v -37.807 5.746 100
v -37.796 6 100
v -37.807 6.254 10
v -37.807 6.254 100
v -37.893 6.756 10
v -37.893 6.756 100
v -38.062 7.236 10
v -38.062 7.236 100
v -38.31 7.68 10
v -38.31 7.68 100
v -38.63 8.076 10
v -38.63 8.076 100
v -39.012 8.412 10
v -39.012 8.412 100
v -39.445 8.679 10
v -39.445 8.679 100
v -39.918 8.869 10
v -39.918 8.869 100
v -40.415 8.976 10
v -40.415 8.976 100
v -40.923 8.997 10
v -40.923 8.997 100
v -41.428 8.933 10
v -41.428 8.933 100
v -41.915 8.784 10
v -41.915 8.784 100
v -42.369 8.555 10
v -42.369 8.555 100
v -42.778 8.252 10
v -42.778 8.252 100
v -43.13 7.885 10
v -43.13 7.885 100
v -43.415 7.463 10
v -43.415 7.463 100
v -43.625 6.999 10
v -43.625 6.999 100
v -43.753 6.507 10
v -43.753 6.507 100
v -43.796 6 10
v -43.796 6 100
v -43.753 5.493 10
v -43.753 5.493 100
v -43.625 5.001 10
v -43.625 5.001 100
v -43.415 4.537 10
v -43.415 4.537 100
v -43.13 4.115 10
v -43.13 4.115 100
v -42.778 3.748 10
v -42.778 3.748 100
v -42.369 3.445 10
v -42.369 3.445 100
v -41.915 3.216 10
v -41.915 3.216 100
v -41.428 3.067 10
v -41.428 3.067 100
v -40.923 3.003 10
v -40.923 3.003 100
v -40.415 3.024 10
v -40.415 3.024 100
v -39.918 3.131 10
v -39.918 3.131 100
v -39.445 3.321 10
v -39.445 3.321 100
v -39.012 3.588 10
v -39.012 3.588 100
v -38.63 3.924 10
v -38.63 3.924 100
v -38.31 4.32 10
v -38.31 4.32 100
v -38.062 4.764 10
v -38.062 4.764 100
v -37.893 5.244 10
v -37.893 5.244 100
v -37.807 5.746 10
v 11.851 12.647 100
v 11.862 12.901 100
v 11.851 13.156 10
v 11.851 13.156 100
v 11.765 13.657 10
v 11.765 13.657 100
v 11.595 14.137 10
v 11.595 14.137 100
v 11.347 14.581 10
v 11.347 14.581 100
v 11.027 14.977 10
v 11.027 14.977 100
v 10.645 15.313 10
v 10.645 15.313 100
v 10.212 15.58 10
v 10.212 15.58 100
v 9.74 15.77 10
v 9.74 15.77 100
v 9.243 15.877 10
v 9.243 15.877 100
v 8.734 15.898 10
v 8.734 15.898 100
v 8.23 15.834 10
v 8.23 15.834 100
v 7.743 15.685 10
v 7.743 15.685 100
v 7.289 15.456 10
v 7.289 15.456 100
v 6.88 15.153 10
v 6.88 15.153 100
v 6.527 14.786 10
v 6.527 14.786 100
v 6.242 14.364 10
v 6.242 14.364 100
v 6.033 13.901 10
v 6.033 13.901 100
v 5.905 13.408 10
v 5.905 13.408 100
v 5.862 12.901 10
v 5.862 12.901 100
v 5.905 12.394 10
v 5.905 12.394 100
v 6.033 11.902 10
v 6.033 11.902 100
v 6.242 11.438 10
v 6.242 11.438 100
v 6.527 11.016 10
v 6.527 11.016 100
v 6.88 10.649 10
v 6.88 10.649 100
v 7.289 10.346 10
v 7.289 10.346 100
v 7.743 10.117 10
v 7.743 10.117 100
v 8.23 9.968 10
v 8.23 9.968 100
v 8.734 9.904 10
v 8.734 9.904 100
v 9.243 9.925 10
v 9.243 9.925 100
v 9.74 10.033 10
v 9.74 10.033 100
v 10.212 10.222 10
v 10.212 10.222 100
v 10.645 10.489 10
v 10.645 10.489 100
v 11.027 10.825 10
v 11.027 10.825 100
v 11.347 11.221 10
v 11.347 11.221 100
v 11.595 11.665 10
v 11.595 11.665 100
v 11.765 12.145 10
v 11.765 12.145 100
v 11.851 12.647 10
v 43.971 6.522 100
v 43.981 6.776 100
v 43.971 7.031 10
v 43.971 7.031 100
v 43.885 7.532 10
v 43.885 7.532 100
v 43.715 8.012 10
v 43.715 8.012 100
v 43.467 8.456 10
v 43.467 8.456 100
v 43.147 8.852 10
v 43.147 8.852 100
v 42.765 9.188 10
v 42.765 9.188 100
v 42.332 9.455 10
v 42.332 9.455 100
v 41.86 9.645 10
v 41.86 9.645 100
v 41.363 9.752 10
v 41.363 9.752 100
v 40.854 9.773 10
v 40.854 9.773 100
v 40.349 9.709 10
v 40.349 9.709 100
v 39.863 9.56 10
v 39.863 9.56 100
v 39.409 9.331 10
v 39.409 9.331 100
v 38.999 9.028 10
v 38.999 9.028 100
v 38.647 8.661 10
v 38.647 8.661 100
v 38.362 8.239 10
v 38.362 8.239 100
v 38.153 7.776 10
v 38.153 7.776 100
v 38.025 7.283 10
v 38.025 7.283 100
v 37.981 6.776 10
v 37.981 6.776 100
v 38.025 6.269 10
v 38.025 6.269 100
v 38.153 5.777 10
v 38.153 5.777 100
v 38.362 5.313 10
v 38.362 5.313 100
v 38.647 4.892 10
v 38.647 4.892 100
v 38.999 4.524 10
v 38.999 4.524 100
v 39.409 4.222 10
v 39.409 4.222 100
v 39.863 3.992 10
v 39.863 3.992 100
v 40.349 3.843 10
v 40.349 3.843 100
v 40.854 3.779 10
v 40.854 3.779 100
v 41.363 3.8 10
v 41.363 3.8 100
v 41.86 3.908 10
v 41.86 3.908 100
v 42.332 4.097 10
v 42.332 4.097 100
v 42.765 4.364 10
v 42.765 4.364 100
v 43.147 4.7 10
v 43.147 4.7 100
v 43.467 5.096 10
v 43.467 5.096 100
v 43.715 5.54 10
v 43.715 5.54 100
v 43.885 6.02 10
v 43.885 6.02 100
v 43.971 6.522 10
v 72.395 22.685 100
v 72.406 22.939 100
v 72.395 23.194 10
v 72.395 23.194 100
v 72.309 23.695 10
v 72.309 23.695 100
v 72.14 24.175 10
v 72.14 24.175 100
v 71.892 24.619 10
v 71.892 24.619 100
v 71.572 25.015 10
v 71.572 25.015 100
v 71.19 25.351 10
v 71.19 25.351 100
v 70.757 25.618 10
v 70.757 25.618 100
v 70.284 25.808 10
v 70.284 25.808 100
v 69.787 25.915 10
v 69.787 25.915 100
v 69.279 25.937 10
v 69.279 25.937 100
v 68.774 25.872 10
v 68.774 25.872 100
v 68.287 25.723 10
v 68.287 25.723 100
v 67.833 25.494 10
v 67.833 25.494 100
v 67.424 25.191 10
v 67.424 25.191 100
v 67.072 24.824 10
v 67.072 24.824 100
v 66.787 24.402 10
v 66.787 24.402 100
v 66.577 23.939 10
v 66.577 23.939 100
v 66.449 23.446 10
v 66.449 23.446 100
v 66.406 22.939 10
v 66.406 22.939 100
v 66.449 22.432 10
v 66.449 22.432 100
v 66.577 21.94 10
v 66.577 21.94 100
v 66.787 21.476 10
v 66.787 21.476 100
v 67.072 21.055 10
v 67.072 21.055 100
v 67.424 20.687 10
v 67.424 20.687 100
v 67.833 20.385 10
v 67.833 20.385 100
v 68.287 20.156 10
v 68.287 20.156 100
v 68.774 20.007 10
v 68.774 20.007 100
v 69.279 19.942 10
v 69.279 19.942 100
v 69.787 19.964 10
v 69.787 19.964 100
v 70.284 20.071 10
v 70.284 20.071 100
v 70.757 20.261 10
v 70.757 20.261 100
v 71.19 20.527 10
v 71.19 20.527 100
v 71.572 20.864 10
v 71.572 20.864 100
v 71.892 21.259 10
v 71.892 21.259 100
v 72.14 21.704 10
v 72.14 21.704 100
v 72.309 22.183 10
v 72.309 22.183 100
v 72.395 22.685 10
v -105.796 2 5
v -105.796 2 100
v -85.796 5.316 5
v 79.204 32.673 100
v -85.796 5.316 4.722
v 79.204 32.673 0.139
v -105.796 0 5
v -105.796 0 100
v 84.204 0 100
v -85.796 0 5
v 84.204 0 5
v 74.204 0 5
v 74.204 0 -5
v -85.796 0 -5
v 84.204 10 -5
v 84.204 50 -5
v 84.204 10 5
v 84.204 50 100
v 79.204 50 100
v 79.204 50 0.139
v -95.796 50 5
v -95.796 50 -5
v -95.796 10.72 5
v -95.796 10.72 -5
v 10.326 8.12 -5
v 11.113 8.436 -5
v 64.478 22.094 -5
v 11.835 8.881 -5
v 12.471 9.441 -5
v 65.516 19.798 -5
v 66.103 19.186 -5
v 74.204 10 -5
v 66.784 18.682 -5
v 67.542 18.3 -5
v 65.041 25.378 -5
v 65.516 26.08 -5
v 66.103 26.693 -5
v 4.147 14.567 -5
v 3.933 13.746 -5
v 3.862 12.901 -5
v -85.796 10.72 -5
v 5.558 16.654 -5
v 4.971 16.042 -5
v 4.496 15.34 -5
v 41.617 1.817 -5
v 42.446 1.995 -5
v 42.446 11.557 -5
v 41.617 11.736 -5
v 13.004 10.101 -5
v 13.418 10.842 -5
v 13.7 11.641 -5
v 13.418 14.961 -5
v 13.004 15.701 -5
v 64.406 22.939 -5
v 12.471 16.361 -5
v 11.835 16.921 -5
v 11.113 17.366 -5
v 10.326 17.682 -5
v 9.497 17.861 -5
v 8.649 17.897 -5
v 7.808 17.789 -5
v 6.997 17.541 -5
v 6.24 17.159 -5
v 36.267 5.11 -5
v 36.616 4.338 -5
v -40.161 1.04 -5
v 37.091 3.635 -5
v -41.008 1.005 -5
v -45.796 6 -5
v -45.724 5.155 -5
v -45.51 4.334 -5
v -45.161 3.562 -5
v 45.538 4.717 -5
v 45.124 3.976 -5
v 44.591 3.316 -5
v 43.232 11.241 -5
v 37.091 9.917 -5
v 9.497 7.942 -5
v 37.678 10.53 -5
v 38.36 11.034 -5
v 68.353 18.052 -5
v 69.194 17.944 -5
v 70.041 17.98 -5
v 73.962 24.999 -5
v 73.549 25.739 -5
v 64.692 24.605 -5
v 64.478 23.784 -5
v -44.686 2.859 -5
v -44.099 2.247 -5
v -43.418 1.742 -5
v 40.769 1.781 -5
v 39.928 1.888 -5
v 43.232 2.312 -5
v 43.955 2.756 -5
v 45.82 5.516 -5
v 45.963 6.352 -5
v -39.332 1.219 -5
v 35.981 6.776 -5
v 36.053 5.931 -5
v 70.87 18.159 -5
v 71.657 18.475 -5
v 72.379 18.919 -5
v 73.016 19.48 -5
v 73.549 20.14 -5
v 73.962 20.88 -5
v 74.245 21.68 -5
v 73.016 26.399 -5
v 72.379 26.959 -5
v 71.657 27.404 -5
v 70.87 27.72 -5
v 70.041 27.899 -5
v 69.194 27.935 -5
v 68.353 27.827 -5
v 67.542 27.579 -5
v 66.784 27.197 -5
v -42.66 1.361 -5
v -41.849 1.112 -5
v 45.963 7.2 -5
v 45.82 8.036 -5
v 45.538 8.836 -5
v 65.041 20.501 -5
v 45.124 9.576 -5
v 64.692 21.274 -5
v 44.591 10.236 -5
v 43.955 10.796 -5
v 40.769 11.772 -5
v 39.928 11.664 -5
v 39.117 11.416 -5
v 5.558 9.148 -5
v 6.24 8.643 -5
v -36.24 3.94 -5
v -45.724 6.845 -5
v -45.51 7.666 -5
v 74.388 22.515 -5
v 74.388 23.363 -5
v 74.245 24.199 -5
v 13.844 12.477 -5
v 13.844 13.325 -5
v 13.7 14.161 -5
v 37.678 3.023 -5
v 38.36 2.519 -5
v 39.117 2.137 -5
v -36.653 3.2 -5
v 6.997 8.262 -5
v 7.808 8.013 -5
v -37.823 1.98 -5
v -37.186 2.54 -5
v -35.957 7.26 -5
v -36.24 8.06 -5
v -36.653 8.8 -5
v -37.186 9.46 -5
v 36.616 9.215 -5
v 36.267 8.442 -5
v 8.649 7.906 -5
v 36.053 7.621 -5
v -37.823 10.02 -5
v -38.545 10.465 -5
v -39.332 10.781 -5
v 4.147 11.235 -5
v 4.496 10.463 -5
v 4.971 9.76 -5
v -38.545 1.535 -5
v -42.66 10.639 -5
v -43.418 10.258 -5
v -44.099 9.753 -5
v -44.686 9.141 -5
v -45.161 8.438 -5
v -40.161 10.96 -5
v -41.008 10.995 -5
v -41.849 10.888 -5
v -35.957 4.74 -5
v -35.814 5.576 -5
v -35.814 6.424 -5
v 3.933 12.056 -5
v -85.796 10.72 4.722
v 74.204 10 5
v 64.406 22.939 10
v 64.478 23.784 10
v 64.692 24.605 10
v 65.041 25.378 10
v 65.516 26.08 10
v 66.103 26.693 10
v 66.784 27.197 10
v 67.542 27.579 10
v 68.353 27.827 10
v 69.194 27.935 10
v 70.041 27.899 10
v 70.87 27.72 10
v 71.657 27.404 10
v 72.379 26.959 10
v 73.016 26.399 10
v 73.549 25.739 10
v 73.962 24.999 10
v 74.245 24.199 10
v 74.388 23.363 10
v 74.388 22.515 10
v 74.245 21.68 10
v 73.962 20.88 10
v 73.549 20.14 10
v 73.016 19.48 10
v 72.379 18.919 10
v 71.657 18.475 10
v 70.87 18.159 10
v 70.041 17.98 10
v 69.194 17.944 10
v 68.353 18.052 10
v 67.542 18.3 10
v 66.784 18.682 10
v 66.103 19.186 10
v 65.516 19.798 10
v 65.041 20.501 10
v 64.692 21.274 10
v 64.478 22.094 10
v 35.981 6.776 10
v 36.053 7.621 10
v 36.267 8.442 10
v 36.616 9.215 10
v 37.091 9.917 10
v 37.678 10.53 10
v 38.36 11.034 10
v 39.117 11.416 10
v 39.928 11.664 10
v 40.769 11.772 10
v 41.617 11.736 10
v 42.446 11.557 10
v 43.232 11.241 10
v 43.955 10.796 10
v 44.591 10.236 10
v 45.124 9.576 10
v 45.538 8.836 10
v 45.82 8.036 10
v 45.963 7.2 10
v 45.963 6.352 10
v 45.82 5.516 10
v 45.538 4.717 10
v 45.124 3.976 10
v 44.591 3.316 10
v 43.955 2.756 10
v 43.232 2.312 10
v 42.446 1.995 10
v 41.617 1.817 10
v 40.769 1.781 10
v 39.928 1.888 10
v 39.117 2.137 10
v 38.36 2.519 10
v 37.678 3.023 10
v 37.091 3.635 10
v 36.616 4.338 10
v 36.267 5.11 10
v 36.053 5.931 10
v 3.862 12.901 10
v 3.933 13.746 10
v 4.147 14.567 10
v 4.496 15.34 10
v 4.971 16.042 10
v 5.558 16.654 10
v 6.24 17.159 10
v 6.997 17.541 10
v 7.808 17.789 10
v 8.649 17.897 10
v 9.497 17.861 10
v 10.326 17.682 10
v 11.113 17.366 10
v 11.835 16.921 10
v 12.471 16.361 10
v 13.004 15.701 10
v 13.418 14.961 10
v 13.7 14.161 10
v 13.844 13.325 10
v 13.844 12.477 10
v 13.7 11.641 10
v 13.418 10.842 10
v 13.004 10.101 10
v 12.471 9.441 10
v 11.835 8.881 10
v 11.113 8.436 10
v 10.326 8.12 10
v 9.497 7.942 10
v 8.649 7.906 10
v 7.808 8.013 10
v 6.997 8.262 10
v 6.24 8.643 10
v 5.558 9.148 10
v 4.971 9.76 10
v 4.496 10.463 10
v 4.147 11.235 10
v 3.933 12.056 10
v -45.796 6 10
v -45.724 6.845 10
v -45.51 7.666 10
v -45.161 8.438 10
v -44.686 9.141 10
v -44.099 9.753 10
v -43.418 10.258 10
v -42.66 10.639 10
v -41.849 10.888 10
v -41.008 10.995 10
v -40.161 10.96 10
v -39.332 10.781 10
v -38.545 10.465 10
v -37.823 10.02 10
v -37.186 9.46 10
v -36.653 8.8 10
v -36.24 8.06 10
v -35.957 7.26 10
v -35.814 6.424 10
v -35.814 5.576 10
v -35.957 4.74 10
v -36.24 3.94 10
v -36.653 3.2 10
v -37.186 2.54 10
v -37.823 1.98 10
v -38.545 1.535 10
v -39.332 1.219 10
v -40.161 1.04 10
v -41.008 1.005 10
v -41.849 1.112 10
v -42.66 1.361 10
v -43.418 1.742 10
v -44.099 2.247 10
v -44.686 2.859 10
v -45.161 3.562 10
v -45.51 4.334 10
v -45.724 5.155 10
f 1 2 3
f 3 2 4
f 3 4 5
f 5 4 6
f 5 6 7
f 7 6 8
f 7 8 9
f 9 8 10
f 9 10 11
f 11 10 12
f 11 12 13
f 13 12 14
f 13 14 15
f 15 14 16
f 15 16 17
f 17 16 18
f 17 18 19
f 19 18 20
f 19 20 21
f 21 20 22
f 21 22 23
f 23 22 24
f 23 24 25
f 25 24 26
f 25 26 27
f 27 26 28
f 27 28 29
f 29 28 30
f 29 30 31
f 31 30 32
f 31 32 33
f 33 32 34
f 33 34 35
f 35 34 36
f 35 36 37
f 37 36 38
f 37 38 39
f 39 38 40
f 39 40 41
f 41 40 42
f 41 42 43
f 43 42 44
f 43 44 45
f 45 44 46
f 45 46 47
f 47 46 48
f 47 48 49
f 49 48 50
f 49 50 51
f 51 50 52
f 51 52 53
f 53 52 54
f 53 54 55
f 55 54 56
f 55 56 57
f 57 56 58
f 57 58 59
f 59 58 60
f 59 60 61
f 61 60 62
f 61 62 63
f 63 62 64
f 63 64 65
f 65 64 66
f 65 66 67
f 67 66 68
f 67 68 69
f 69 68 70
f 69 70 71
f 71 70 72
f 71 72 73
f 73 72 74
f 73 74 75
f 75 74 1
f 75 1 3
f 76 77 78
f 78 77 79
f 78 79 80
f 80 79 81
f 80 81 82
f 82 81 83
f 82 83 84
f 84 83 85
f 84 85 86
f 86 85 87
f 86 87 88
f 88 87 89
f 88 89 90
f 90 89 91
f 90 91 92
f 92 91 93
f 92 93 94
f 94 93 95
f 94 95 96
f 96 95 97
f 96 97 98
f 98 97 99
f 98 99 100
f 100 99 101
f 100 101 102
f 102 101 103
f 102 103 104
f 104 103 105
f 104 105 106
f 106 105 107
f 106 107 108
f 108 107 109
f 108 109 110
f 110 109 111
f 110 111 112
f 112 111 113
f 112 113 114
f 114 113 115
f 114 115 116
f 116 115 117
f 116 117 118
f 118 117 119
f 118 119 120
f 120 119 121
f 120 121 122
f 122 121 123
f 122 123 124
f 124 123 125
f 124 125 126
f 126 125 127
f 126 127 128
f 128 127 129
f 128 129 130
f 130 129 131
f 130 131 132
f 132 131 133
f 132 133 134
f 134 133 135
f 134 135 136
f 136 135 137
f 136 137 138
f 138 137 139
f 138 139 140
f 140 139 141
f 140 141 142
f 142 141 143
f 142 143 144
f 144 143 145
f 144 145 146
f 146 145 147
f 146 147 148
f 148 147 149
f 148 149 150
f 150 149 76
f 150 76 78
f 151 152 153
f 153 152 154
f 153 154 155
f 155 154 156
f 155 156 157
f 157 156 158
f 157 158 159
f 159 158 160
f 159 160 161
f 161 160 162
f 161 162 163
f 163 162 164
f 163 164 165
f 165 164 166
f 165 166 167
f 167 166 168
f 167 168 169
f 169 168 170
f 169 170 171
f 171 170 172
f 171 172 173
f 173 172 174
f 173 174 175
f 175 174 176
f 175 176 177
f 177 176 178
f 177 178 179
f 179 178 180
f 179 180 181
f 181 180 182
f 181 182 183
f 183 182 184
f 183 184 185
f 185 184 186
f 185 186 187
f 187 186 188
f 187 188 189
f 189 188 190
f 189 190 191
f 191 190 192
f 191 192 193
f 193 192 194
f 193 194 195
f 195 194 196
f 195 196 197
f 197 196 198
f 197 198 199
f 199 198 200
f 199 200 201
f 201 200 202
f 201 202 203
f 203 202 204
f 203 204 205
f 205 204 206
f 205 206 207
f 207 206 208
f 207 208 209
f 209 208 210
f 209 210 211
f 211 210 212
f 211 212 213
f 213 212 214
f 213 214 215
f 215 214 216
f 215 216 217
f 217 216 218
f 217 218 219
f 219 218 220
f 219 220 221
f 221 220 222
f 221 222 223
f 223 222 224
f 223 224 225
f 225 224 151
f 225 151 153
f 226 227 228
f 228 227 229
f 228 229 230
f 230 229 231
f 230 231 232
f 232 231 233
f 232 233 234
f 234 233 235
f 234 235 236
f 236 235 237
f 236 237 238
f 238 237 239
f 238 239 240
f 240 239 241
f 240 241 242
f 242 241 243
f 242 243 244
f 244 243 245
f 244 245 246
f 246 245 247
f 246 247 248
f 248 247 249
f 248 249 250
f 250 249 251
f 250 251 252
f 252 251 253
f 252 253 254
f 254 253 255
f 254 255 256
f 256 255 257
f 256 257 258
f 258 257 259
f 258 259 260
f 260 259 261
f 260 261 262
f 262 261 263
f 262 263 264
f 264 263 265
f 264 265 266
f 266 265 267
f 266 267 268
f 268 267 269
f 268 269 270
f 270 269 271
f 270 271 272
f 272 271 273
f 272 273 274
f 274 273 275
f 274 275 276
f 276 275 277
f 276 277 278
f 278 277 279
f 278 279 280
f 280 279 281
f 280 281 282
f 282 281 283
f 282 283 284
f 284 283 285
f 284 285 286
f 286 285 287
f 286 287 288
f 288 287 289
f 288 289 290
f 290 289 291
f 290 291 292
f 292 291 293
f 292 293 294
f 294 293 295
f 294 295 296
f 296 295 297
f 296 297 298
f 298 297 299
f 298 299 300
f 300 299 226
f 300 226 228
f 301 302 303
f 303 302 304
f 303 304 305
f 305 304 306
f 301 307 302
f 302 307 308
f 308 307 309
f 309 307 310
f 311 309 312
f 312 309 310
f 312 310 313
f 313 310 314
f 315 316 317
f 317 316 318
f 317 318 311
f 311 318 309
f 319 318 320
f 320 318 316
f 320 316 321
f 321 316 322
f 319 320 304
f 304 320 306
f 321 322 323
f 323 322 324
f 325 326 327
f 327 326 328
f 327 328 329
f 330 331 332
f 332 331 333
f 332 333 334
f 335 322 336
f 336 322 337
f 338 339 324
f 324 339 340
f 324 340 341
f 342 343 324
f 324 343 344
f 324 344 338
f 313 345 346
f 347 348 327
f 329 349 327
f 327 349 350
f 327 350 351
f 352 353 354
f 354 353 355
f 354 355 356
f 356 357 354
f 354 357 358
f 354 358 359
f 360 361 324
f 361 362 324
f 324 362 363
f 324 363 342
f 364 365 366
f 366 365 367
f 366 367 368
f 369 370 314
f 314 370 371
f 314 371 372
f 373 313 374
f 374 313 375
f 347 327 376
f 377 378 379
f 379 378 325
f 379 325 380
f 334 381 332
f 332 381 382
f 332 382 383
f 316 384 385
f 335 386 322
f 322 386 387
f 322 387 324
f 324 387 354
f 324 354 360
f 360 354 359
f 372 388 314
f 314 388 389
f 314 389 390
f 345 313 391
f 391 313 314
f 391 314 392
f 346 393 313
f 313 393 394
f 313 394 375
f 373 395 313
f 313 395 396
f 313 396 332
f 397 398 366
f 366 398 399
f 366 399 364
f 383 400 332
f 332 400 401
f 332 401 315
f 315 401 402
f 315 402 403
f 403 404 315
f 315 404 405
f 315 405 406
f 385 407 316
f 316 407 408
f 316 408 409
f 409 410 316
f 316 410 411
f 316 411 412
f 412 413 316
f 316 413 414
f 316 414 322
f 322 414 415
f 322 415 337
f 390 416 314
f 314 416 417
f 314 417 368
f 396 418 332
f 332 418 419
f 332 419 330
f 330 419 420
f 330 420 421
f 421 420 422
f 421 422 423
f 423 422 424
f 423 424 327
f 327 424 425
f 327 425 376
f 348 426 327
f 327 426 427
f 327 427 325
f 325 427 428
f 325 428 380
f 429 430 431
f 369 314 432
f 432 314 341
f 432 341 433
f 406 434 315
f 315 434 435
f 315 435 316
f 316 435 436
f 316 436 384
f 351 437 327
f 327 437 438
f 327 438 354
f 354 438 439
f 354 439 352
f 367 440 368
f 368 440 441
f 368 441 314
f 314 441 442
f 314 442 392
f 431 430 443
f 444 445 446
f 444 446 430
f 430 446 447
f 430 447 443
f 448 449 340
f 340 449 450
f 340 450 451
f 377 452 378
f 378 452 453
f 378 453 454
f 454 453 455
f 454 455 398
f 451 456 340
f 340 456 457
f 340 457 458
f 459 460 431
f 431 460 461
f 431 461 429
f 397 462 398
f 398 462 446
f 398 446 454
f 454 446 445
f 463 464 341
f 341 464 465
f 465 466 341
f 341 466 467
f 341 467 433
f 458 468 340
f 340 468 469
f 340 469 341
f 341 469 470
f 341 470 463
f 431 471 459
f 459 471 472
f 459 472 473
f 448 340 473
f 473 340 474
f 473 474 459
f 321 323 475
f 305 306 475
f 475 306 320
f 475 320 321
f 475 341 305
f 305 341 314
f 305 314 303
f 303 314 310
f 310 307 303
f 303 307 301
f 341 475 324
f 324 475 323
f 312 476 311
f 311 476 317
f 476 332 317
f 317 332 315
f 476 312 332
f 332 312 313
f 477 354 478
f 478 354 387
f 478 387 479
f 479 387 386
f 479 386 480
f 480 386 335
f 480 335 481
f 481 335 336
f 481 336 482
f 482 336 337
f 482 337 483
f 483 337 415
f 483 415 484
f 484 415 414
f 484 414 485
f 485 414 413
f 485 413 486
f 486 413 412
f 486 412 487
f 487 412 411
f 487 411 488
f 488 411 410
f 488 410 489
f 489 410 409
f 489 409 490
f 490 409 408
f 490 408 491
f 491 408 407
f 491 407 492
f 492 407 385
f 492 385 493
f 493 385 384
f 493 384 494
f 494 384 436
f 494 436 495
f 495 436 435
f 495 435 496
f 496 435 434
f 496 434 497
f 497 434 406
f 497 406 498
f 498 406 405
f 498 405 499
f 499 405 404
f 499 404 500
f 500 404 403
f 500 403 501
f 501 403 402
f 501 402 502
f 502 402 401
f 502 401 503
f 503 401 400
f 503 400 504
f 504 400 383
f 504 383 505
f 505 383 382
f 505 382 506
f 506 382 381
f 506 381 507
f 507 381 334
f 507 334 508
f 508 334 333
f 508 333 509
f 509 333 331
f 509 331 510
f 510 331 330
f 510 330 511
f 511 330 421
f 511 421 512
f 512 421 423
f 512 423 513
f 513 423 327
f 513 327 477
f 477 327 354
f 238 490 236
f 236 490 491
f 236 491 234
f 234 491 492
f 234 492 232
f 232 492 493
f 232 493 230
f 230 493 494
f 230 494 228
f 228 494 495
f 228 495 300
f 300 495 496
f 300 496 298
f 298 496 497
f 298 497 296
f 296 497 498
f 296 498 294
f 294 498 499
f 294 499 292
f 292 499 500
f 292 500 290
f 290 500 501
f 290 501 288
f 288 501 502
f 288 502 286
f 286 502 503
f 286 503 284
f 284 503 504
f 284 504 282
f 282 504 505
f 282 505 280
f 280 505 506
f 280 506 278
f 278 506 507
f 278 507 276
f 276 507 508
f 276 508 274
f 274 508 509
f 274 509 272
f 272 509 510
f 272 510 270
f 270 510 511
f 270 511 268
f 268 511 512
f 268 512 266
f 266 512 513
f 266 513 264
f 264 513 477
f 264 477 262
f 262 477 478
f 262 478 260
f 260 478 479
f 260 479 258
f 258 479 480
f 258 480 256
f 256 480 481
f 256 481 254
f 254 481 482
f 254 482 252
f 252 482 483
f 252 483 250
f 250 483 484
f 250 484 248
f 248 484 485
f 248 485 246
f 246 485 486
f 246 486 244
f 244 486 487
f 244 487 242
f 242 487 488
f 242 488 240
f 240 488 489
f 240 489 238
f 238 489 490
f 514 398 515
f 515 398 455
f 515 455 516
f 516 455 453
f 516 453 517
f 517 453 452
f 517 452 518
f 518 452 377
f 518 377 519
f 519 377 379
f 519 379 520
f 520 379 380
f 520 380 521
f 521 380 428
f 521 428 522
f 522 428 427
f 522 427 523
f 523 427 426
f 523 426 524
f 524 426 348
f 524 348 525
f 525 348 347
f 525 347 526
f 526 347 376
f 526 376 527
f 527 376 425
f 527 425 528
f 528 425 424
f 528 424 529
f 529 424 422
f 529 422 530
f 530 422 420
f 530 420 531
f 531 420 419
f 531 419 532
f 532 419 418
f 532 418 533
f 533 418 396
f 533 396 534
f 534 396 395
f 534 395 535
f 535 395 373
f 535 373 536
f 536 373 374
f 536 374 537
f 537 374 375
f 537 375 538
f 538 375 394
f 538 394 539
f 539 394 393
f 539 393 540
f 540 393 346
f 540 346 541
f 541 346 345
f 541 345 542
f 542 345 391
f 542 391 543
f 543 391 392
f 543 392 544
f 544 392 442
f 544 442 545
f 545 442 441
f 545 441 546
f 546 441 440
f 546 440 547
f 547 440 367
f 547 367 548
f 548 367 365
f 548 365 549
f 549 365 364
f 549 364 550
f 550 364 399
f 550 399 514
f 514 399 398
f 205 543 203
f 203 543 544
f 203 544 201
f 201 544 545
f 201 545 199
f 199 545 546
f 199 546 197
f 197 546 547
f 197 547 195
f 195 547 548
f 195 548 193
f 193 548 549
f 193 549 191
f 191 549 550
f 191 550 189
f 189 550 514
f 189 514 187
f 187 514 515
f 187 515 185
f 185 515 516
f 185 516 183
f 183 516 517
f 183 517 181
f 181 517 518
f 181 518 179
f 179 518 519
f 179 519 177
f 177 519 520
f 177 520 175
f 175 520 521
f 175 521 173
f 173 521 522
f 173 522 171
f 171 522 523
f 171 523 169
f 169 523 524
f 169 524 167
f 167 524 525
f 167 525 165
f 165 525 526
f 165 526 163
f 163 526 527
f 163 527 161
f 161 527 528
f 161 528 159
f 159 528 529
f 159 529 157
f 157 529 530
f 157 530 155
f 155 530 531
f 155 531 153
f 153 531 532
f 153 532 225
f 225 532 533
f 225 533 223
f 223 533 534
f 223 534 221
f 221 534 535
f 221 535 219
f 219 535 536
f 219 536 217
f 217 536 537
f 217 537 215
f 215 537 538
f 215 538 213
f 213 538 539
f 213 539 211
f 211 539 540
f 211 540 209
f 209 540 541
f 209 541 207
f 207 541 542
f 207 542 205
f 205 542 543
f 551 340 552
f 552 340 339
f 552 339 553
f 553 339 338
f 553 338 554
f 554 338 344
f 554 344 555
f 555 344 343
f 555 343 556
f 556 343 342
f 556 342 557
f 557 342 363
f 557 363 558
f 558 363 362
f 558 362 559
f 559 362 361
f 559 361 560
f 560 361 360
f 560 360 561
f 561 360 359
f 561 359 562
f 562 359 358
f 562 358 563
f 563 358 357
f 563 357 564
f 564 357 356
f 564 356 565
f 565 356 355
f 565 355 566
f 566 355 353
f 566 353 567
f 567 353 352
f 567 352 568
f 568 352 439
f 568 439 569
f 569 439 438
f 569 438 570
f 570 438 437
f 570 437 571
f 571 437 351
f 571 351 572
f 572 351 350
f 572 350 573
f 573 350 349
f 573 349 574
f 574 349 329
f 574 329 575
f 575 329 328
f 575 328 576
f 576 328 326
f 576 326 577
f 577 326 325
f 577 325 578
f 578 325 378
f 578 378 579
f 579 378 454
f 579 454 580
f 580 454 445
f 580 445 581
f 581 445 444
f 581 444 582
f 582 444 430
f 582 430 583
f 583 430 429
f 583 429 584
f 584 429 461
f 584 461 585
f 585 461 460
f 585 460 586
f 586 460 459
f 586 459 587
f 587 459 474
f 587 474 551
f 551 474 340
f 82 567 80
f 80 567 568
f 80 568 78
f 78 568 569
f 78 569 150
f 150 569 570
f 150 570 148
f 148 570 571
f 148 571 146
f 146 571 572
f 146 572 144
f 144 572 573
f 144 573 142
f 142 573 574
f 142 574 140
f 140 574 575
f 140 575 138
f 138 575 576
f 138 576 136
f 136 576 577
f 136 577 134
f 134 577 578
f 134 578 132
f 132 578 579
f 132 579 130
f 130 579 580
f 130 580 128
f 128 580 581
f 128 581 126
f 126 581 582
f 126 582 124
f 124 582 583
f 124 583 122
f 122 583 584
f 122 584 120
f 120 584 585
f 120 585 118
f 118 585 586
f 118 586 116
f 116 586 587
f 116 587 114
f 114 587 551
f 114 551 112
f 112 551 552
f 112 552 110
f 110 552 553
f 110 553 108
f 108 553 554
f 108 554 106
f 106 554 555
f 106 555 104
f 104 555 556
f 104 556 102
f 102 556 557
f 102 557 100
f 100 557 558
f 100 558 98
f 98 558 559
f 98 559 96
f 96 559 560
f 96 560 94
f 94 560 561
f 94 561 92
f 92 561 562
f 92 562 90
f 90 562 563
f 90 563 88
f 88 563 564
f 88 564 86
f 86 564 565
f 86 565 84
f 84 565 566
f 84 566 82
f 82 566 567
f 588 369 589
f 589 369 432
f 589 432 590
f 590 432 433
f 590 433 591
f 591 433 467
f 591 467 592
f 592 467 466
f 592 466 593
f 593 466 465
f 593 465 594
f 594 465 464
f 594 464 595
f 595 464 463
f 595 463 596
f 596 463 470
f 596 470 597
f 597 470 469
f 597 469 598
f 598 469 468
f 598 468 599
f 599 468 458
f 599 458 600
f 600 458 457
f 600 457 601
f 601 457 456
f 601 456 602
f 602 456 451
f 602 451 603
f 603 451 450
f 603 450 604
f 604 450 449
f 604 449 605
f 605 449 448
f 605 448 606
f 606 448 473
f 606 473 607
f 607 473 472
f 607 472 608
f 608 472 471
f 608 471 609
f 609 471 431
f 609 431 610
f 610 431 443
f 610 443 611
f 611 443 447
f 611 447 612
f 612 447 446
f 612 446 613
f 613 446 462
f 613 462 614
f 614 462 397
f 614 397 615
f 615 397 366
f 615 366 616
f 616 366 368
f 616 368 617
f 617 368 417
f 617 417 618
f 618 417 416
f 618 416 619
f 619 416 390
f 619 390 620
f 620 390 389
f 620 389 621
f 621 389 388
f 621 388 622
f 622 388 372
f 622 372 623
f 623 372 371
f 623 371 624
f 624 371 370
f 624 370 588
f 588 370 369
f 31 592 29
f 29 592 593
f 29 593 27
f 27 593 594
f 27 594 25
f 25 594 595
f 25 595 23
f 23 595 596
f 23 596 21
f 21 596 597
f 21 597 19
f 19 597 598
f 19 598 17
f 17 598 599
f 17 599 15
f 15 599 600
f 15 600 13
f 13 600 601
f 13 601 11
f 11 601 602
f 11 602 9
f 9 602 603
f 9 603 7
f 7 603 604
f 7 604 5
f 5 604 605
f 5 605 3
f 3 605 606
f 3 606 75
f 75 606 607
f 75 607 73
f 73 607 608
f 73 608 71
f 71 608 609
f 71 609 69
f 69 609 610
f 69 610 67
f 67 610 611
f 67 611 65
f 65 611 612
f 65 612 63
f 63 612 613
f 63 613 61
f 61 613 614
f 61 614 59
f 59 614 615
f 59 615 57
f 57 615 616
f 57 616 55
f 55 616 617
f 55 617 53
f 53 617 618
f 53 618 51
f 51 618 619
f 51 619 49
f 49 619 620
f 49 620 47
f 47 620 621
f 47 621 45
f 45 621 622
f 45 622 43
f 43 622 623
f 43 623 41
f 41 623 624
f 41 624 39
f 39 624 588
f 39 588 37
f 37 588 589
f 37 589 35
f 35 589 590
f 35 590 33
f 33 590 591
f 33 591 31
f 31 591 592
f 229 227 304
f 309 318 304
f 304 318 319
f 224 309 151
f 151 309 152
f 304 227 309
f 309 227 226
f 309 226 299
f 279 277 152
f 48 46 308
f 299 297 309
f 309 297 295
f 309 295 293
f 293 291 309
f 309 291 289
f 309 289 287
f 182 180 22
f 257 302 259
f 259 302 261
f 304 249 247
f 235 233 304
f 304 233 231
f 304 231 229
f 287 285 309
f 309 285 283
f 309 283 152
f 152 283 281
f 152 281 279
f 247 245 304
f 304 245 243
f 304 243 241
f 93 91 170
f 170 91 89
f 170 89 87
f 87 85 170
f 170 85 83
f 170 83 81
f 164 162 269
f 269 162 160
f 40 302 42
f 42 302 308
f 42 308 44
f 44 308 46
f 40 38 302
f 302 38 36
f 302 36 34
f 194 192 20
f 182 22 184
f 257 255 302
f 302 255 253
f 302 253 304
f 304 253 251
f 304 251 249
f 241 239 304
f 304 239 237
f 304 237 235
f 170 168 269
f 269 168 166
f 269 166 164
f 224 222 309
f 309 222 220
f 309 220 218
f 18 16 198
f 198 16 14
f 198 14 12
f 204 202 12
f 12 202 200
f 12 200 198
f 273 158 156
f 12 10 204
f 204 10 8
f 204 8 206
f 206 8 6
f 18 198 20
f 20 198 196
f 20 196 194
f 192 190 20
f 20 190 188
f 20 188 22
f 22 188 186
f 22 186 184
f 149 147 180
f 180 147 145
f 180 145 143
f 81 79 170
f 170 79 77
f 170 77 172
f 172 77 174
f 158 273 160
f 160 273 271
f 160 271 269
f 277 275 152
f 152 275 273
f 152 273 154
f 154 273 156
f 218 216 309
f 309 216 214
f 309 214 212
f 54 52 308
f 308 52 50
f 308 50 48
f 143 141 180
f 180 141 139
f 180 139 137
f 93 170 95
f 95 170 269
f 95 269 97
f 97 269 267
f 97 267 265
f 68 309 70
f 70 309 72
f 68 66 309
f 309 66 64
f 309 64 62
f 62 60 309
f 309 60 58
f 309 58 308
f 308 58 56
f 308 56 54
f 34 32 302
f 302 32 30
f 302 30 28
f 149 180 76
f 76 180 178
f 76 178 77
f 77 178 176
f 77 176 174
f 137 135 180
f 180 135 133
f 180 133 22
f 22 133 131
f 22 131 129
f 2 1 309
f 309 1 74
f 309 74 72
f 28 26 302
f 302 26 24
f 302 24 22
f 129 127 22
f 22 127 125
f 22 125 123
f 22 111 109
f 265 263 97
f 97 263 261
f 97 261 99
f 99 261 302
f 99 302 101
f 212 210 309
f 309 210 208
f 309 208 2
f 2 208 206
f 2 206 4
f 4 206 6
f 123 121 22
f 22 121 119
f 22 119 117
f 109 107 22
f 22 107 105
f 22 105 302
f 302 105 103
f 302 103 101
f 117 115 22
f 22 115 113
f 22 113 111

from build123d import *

# Parameters (mm, degrees)
ESQUISSE1_R             = 3
BOSS_EXTRU_1_DEPTH      = 200
ESQUISSE4_W             = 5
ESQUISSE4_H             = 50
BOSS_EXTRU_4_DEPTH      = 180
BOSS_EXTRU_7_DEPTH      = 50
ESQUISSE6_W             = 20
ESQUISSE6_H             = 10.719834163
ENL_V_MAT_EXTRU_2_DEPTH = 10
ESQUISSE5_W             = 10
ESQUISSE5_H             = 10
ENL_V_MAT_EXTRU_1_DEPTH = 10
ESQUISSE14_R            = 5
ENL_V_MAT_EXTRU_4_DEPTH = 15
BOSS_EXTRU_8_REACH      = 242.401
ESQUISSE16_W            = 219.108996988
ESQUISSE16_H            = 68.482817494
ENL_V_MAT_EXTRU_5_DEPTH = 105


with BuildPart() as part:
    # Esquisse1 → Boss.-Extru.1 (new body)
    with BuildSketch(Plane.XY):
        Polygon((-105.796013405, 0), (84.203986595, 0), (84.203986595, 33.502126335), (-105.796013405, 2), align=None)
        with Locations((69.406004871, 22.939397164)):
            Circle(ESQUISSE1_R, mode=Mode.SUBTRACT)
        with Locations((40.981469067, 6.77616521)):
            Circle(ESQUISSE1_R, mode=Mode.SUBTRACT)
        with Locations((-40.796013405, 6)):
            Circle(ESQUISSE1_R, mode=Mode.SUBTRACT)
        with Locations((8.861542866, 12.901085106)):
            Circle(ESQUISSE1_R, mode=Mode.SUBTRACT)
    extrude(amount=BOSS_EXTRU_1_DEPTH)

    # Esquisse4 → Boss.-Extru.4 (add)
    with BuildSketch(Plane(origin=(84.203986595, 0, 0), x_dir=(0, 0, -1), z_dir=(1, 0, 0))):
        with Locations((-202.5, 25)):
            Rectangle(ESQUISSE4_W, ESQUISSE4_H)
        with Locations((2.5, 25)):
            Rectangle(ESQUISSE4_W, ESQUISSE4_H)
    extrude(amount=-BOSS_EXTRU_4_DEPTH)

    # Esquisse8 → Boss.-Extru.7 (add)
    with BuildSketch(Plane(origin=(0, 50, 0), x_dir=(1, 0, 0), z_dir=(0, 1, 0))):
        Polygon((84.203986595, 0), (-95.796013405, 0), (-95.796013405, -5), align=None)
    boss_extru_7 = extrude(amount=-BOSS_EXTRU_7_DEPTH)

    # Esquisse6 → Enlèv. mat.-Extru.2 (cut)
    with BuildSketch(Plane(origin=(0, 0, -5), x_dir=(-1, 0, 0), z_dir=(0, 0, -1))):
        with Locations((95.796013405, 5.359917081)):
            Rectangle(ESQUISSE6_W, ESQUISSE6_H)
    enl_v_mat_extru_2 = extrude(amount=-ENL_V_MAT_EXTRU_2_DEPTH, mode=Mode.SUBTRACT)

    # Esquisse5 → Enlèv. mat.-Extru.1 (cut)
    with BuildSketch(Plane(origin=(84.203986595, 0, 0), x_dir=(0, 0, -1), z_dir=(1, 0, 0))):
        with Locations((-200, 5)):
            Rectangle(ESQUISSE5_W, ESQUISSE5_H)
        with Locations((0, 5)):
            Rectangle(ESQUISSE5_W, ESQUISSE5_H)
    extrude(amount=-ENL_V_MAT_EXTRU_1_DEPTH, mode=Mode.SUBTRACT)

    # Esquisse14 → Enlèv. mat.-Extru.4 (cut)
    with BuildSketch(Plane(origin=(0, 0, -5), x_dir=(-1, 0, 0), z_dir=(0, 0, -1))):
        with Locations((-69.406004871, 22.939397164)):
            Circle(ESQUISSE14_R)
        with Locations((-40.981469067, 6.77616521)):
            Circle(ESQUISSE14_R)
        with Locations((-8.861542866, 12.901085106)):
            Circle(ESQUISSE14_R)
        with Locations((40.796013405, 6)):
            Circle(ESQUISSE14_R)
    enl_v_mat_extru_4 = extrude(amount=-ENL_V_MAT_EXTRU_4_DEPTH, mode=Mode.SUBTRACT)

    # Symétrie3: Boss.-Extru.7, Enlèv. mat.-Extru.2, Enlèv. mat.-Extru.4 across plane
    add(boss_extru_7.mirror(Plane(origin=(0, 0, 100), x_dir=(1, 0, 0), z_dir=(0, 0, -1))))
    add(enl_v_mat_extru_2.mirror(Plane(origin=(0, 0, 100), x_dir=(1, 0, 0), z_dir=(0, 0, -1))), mode=Mode.SUBTRACT)
    add(enl_v_mat_extru_4.mirror(Plane(origin=(0, 0, 100), x_dir=(1, 0, 0), z_dir=(0, 0, -1))), mode=Mode.SUBTRACT)

    # Boss.-Extru.8: up to this plane
    boss_extru_8_end = Plane(origin=(-95.796013405, -180.069431054, 195), z_dir=(-0.0277670672403533, 0, 0.9996144206527183))
    # Esquisse15 → Boss.-Extru.8 (add, up to the surface)
    with BuildSketch(Plane(origin=(0, 0, -5), x_dir=(-1, 0, 0), z_dir=(0, 0, -1)), mode=Mode.PRIVATE) as boss_extru_8_sk1:
        Polygon((-84.203986595, 33.502126335), (-79.203986595, 32.67312301), (-79.203986595, 50), (-84.203986595, 50), align=None)
    boss_extru_8_tool1 = split(extrude(boss_extru_8_sk1.sketch, amount=-BOSS_EXTRU_8_REACH, mode=Mode.PRIVATE), bisect_by=boss_extru_8_end, keep=Keep.BOTH, mode=Mode.PRIVATE)
    add(boss_extru_8_tool1.solids().sort_by_distance((81.683563, 41.542119, -5))[0])

    # Esquisse16 → Enlèv. mat.-Extru.5 (cut)
    with BuildSketch(Plane(origin=(0, 0, 100), x_dir=(-1, 0, 0), z_dir=(0, 0, -1))):
        with Locations((5.796013405, 28.916172848)):
            Rectangle(ESQUISSE16_W, ESQUISSE16_H)
    extrude(amount=-ENL_V_MAT_EXTRU_5_DEPTH, mode=Mode.SUBTRACT)


solid = part.part
